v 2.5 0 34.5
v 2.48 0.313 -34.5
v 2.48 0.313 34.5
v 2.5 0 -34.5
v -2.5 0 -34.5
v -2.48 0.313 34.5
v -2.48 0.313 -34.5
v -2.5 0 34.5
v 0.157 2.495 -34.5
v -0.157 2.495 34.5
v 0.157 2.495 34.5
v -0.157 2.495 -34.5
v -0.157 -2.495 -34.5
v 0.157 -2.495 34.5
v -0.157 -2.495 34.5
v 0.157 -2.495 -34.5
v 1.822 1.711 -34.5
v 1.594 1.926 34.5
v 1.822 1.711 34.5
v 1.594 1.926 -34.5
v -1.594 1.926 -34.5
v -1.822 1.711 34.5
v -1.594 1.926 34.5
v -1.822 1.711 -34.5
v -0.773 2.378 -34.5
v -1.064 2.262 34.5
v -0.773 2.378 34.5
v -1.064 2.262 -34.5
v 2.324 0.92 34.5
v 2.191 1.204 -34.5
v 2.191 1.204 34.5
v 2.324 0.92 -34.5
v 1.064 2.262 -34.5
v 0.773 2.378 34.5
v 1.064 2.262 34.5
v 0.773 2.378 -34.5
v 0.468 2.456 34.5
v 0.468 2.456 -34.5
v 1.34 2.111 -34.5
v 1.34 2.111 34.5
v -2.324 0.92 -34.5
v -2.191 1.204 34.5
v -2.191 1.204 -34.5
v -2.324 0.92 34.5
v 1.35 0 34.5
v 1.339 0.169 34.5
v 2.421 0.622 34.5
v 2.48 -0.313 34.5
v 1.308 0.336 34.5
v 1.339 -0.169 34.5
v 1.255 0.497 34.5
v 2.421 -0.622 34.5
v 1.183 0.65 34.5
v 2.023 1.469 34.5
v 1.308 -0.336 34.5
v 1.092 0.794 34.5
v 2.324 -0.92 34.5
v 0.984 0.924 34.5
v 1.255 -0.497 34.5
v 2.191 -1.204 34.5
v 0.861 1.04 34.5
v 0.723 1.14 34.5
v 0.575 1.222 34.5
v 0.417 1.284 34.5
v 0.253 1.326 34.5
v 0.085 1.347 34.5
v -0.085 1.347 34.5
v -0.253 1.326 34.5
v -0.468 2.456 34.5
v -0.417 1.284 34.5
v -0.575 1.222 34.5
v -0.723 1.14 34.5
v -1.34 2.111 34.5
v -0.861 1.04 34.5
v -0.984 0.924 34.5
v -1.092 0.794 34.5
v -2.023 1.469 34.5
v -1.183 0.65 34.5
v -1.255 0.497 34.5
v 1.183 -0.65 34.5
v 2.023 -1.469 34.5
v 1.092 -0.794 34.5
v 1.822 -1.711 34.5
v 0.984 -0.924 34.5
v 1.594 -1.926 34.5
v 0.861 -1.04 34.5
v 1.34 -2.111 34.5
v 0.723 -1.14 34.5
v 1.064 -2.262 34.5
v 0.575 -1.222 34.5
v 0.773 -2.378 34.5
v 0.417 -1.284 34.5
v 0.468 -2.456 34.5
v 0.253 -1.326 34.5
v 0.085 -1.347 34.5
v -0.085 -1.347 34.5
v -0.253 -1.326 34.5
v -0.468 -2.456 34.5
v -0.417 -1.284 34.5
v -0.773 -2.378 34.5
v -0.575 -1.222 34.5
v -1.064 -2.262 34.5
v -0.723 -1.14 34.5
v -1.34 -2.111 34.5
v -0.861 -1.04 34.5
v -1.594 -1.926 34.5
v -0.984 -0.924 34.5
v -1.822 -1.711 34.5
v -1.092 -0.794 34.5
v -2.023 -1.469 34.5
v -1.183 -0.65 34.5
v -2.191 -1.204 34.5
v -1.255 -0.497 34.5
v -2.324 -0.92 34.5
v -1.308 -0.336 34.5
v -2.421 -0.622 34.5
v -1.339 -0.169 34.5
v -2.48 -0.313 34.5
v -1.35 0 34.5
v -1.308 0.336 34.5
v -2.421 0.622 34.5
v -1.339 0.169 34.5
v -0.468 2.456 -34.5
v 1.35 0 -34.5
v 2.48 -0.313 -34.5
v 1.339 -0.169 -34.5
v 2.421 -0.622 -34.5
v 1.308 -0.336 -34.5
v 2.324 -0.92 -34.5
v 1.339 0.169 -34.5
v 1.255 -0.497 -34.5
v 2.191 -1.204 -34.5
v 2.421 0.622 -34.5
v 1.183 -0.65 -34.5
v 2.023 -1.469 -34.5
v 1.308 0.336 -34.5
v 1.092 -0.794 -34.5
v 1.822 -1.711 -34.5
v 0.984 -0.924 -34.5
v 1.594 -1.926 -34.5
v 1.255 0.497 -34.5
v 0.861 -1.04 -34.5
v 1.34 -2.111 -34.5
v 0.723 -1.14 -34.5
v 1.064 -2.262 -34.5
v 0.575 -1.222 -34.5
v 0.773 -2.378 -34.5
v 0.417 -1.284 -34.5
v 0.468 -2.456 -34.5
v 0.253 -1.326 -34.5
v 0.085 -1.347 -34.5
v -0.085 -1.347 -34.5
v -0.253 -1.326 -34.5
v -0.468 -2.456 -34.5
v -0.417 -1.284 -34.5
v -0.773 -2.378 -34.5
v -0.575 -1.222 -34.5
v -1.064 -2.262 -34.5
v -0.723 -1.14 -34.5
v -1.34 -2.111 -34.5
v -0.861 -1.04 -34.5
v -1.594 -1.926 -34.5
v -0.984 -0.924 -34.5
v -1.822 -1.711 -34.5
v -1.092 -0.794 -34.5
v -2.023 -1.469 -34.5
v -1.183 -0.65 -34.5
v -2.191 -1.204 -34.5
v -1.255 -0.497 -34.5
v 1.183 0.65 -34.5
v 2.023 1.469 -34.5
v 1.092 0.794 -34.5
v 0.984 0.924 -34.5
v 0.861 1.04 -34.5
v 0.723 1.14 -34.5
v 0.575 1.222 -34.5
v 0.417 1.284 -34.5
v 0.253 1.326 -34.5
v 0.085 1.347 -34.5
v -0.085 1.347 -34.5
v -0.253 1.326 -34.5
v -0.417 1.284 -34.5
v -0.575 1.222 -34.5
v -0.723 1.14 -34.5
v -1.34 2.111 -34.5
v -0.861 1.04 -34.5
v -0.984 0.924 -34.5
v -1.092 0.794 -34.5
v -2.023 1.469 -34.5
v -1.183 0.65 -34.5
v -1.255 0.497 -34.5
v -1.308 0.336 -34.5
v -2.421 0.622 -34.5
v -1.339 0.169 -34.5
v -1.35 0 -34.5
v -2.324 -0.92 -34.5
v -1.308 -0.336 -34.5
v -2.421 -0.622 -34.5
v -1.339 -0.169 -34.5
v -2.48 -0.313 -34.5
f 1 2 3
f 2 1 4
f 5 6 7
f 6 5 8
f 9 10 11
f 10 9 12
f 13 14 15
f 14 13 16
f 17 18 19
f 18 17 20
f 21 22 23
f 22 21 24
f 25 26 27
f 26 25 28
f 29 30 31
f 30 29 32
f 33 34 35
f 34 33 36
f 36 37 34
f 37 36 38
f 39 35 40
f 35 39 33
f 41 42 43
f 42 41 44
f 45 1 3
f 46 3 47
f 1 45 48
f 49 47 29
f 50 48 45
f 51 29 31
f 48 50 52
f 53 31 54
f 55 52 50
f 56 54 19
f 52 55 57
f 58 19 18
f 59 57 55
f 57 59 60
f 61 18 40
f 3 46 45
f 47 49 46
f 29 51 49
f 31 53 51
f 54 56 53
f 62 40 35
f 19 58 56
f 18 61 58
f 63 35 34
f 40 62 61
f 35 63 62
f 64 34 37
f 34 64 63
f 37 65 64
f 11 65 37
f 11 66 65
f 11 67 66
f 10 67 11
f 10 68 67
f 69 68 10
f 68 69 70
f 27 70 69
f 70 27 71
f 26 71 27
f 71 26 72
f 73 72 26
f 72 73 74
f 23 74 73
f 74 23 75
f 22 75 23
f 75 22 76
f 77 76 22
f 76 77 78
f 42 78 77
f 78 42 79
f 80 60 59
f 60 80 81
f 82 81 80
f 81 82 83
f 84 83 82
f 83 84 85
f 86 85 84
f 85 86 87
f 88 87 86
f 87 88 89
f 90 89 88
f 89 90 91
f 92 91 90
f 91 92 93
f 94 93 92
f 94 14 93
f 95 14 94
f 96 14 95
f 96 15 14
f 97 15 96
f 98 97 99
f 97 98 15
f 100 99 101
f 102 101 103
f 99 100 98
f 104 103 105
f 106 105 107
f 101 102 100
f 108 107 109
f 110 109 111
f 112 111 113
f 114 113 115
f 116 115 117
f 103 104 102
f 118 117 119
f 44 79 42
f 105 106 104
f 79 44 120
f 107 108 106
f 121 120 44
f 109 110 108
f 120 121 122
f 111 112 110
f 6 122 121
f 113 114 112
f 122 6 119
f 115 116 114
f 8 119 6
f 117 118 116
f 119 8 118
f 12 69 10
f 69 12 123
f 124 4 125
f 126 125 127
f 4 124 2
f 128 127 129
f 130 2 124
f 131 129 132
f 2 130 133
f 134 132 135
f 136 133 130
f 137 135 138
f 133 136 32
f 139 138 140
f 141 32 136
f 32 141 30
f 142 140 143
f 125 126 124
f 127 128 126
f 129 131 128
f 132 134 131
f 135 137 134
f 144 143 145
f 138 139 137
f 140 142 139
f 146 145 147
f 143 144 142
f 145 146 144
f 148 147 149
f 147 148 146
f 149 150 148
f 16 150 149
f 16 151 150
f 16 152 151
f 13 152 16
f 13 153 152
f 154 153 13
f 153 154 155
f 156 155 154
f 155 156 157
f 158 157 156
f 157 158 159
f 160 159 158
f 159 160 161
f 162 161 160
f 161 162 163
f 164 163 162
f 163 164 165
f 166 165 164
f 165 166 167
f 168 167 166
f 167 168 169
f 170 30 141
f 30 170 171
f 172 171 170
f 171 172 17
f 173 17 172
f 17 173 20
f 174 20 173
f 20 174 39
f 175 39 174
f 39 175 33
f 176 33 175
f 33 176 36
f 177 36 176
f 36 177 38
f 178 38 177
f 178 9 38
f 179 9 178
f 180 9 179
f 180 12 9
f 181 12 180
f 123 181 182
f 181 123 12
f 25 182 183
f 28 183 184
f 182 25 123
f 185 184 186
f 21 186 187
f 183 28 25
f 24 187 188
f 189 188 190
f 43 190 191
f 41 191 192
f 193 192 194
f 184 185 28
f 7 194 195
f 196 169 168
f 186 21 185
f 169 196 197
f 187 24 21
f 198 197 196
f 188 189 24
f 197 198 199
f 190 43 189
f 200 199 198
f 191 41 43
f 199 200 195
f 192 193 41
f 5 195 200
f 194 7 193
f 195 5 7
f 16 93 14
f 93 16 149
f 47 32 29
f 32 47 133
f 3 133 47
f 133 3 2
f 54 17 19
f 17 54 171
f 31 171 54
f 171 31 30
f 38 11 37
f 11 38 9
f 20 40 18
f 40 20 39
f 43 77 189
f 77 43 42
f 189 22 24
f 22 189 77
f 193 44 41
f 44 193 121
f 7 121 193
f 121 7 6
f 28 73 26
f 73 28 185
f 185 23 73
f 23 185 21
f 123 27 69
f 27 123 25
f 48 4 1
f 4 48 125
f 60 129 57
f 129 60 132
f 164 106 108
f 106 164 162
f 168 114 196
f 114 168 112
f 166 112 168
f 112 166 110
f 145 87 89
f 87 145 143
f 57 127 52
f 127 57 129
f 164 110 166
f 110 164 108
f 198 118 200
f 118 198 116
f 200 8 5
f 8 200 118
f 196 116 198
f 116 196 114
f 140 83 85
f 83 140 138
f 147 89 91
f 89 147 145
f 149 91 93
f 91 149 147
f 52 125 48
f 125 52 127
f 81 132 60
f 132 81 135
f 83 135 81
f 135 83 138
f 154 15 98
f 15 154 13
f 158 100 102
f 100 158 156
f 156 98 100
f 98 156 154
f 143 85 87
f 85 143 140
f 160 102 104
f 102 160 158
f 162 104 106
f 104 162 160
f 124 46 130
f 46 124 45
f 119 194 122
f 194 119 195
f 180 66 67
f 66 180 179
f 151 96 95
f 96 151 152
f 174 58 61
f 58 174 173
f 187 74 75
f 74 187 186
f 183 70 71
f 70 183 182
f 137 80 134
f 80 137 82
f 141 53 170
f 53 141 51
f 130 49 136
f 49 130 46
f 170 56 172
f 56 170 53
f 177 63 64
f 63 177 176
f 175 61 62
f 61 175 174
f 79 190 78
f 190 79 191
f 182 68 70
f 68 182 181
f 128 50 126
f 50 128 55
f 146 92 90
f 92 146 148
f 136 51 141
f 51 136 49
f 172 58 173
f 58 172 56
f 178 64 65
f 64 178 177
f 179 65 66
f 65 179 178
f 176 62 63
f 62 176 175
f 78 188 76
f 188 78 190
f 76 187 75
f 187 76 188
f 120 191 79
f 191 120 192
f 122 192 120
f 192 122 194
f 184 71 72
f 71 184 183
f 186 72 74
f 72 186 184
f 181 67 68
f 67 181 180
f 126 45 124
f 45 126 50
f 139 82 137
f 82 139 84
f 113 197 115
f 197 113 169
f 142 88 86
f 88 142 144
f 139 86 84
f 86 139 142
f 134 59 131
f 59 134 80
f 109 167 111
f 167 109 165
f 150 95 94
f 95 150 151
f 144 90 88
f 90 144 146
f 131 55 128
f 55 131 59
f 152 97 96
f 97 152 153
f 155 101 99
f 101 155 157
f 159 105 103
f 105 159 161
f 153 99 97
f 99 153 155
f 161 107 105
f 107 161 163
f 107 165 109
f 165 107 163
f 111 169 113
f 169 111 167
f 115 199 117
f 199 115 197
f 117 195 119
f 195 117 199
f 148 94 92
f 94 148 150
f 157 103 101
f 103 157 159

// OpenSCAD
$fn = 50;


difference() {
	union() {
		translate(v = [0, 0, -34.5000000000]) {
			cylinder(h = 69, r = 2.5000000000);
		}
	}
	union() {
		translate(v = [0, 0, -100.0000000000]) {
			cylinder(h = 200, r = 1.3500000000);
		}
	}
}
